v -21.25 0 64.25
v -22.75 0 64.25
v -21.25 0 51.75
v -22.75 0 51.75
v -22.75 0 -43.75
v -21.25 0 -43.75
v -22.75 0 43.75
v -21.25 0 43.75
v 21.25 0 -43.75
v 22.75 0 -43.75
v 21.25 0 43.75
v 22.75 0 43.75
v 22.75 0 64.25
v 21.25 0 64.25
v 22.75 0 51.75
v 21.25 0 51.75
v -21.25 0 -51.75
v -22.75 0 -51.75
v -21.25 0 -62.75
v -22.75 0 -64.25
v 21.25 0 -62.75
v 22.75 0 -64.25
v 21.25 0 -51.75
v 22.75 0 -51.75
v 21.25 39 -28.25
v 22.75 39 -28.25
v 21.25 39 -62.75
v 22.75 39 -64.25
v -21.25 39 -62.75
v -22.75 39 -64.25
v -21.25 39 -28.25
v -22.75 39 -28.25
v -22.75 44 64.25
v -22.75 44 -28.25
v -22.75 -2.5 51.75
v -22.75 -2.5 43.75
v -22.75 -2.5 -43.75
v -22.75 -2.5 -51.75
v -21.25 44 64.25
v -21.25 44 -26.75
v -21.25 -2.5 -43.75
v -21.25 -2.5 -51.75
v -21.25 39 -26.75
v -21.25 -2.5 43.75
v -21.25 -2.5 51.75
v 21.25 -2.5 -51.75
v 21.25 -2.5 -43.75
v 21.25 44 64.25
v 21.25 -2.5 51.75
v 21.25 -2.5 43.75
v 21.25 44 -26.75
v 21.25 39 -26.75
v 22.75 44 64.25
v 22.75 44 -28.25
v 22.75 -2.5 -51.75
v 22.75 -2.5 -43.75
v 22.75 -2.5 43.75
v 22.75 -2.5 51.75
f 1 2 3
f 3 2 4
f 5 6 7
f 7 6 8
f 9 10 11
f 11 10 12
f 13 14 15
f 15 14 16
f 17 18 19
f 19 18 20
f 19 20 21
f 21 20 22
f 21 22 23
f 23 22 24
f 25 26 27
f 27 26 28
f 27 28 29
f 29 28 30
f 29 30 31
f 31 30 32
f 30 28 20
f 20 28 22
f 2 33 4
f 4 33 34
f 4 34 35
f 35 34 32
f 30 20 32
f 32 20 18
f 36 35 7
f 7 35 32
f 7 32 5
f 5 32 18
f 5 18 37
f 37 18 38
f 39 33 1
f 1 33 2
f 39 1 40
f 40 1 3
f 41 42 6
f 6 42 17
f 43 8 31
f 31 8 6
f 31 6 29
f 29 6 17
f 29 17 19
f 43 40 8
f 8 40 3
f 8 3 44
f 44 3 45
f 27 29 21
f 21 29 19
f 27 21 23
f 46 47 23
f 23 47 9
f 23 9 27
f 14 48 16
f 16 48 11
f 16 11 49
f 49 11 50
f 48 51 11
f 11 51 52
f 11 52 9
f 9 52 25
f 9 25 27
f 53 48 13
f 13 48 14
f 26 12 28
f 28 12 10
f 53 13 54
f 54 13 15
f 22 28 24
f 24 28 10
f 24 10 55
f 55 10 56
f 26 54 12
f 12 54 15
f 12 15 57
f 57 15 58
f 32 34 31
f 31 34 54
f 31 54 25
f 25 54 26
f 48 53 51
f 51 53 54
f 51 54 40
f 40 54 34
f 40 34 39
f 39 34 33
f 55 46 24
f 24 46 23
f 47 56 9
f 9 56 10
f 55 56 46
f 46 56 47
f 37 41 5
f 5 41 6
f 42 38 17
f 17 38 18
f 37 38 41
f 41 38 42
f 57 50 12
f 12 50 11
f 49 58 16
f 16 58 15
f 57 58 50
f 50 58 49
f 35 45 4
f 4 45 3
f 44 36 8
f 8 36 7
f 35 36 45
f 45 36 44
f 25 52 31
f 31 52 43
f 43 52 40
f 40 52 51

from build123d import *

# Parameters (mm, degrees)
BOSS_EXTRUDE1_DEPTH = 39
SKETCH2_W           = 1.5
SKETCH2_H           = 92.5
BOSS_EXTRUDE2_DEPTH = 5
SKETCH3_W           = 1.5
SKETCH3_H           = 8
BOSS_EXTRUDE3_DEPTH = 2.5
SKETCH4_W           = 45.5
SKETCH4_H           = 5
BOSS_EXTRUDE5_DEPTH = 1.5


with BuildPart() as part:
    # Sketch1 → Boss-Extrude1 (new body)
    with BuildSketch(Plane(origin=(0, 0, 0), x_dir=(1, 0, 0), z_dir=(0, 1, 0))):
        Polygon((22.75, 64.25), (22.75, -64.25), (21.25, -64.25), (21.25, 62.75), (-21.25, 62.75), (-21.25, -64.25), (-22.75, -64.25), (-22.75, 64.25), align=None)
    extrude(amount=BOSS_EXTRUDE1_DEPTH)

    # Sketch2 → Boss-Extrude2 (add)
    with BuildSketch(Plane(origin=(0, 39, 0), x_dir=(1, 0, 0), z_dir=(0, 1, 0))):
        with Locations((-22, -18)):
            Rectangle(SKETCH2_W, SKETCH2_H)
        with Locations((22, -18)):
            Rectangle(SKETCH2_W, SKETCH2_H)
    extrude(amount=BOSS_EXTRUDE2_DEPTH)

    # Sketch3 → Boss-Extrude3 (add)
    with BuildSketch(Plane.XZ):
        with Locations((22, -47.75)):
            Rectangle(SKETCH3_W, SKETCH3_H)
        with Locations((-22, -47.75)):
            Rectangle(SKETCH3_W, SKETCH3_H)
        with Locations((22, 47.75)):
            Rectangle(SKETCH3_W, SKETCH3_H)
        with Locations((-22, 47.75)):
            Rectangle(SKETCH3_W, SKETCH3_H)
    extrude(amount=BOSS_EXTRUDE3_DEPTH)

    # Sketch4 → Boss-Extrude5 (add)
    with BuildSketch(Plane(origin=(0, 0, -28.25), x_dir=(-1, 0, 0), z_dir=(0, 0, -1))):
        with Locations((0, 41.5)):
            Rectangle(SKETCH4_W, SKETCH4_H)
    extrude(amount=-BOSS_EXTRUDE5_DEPTH)


solid = part.part
